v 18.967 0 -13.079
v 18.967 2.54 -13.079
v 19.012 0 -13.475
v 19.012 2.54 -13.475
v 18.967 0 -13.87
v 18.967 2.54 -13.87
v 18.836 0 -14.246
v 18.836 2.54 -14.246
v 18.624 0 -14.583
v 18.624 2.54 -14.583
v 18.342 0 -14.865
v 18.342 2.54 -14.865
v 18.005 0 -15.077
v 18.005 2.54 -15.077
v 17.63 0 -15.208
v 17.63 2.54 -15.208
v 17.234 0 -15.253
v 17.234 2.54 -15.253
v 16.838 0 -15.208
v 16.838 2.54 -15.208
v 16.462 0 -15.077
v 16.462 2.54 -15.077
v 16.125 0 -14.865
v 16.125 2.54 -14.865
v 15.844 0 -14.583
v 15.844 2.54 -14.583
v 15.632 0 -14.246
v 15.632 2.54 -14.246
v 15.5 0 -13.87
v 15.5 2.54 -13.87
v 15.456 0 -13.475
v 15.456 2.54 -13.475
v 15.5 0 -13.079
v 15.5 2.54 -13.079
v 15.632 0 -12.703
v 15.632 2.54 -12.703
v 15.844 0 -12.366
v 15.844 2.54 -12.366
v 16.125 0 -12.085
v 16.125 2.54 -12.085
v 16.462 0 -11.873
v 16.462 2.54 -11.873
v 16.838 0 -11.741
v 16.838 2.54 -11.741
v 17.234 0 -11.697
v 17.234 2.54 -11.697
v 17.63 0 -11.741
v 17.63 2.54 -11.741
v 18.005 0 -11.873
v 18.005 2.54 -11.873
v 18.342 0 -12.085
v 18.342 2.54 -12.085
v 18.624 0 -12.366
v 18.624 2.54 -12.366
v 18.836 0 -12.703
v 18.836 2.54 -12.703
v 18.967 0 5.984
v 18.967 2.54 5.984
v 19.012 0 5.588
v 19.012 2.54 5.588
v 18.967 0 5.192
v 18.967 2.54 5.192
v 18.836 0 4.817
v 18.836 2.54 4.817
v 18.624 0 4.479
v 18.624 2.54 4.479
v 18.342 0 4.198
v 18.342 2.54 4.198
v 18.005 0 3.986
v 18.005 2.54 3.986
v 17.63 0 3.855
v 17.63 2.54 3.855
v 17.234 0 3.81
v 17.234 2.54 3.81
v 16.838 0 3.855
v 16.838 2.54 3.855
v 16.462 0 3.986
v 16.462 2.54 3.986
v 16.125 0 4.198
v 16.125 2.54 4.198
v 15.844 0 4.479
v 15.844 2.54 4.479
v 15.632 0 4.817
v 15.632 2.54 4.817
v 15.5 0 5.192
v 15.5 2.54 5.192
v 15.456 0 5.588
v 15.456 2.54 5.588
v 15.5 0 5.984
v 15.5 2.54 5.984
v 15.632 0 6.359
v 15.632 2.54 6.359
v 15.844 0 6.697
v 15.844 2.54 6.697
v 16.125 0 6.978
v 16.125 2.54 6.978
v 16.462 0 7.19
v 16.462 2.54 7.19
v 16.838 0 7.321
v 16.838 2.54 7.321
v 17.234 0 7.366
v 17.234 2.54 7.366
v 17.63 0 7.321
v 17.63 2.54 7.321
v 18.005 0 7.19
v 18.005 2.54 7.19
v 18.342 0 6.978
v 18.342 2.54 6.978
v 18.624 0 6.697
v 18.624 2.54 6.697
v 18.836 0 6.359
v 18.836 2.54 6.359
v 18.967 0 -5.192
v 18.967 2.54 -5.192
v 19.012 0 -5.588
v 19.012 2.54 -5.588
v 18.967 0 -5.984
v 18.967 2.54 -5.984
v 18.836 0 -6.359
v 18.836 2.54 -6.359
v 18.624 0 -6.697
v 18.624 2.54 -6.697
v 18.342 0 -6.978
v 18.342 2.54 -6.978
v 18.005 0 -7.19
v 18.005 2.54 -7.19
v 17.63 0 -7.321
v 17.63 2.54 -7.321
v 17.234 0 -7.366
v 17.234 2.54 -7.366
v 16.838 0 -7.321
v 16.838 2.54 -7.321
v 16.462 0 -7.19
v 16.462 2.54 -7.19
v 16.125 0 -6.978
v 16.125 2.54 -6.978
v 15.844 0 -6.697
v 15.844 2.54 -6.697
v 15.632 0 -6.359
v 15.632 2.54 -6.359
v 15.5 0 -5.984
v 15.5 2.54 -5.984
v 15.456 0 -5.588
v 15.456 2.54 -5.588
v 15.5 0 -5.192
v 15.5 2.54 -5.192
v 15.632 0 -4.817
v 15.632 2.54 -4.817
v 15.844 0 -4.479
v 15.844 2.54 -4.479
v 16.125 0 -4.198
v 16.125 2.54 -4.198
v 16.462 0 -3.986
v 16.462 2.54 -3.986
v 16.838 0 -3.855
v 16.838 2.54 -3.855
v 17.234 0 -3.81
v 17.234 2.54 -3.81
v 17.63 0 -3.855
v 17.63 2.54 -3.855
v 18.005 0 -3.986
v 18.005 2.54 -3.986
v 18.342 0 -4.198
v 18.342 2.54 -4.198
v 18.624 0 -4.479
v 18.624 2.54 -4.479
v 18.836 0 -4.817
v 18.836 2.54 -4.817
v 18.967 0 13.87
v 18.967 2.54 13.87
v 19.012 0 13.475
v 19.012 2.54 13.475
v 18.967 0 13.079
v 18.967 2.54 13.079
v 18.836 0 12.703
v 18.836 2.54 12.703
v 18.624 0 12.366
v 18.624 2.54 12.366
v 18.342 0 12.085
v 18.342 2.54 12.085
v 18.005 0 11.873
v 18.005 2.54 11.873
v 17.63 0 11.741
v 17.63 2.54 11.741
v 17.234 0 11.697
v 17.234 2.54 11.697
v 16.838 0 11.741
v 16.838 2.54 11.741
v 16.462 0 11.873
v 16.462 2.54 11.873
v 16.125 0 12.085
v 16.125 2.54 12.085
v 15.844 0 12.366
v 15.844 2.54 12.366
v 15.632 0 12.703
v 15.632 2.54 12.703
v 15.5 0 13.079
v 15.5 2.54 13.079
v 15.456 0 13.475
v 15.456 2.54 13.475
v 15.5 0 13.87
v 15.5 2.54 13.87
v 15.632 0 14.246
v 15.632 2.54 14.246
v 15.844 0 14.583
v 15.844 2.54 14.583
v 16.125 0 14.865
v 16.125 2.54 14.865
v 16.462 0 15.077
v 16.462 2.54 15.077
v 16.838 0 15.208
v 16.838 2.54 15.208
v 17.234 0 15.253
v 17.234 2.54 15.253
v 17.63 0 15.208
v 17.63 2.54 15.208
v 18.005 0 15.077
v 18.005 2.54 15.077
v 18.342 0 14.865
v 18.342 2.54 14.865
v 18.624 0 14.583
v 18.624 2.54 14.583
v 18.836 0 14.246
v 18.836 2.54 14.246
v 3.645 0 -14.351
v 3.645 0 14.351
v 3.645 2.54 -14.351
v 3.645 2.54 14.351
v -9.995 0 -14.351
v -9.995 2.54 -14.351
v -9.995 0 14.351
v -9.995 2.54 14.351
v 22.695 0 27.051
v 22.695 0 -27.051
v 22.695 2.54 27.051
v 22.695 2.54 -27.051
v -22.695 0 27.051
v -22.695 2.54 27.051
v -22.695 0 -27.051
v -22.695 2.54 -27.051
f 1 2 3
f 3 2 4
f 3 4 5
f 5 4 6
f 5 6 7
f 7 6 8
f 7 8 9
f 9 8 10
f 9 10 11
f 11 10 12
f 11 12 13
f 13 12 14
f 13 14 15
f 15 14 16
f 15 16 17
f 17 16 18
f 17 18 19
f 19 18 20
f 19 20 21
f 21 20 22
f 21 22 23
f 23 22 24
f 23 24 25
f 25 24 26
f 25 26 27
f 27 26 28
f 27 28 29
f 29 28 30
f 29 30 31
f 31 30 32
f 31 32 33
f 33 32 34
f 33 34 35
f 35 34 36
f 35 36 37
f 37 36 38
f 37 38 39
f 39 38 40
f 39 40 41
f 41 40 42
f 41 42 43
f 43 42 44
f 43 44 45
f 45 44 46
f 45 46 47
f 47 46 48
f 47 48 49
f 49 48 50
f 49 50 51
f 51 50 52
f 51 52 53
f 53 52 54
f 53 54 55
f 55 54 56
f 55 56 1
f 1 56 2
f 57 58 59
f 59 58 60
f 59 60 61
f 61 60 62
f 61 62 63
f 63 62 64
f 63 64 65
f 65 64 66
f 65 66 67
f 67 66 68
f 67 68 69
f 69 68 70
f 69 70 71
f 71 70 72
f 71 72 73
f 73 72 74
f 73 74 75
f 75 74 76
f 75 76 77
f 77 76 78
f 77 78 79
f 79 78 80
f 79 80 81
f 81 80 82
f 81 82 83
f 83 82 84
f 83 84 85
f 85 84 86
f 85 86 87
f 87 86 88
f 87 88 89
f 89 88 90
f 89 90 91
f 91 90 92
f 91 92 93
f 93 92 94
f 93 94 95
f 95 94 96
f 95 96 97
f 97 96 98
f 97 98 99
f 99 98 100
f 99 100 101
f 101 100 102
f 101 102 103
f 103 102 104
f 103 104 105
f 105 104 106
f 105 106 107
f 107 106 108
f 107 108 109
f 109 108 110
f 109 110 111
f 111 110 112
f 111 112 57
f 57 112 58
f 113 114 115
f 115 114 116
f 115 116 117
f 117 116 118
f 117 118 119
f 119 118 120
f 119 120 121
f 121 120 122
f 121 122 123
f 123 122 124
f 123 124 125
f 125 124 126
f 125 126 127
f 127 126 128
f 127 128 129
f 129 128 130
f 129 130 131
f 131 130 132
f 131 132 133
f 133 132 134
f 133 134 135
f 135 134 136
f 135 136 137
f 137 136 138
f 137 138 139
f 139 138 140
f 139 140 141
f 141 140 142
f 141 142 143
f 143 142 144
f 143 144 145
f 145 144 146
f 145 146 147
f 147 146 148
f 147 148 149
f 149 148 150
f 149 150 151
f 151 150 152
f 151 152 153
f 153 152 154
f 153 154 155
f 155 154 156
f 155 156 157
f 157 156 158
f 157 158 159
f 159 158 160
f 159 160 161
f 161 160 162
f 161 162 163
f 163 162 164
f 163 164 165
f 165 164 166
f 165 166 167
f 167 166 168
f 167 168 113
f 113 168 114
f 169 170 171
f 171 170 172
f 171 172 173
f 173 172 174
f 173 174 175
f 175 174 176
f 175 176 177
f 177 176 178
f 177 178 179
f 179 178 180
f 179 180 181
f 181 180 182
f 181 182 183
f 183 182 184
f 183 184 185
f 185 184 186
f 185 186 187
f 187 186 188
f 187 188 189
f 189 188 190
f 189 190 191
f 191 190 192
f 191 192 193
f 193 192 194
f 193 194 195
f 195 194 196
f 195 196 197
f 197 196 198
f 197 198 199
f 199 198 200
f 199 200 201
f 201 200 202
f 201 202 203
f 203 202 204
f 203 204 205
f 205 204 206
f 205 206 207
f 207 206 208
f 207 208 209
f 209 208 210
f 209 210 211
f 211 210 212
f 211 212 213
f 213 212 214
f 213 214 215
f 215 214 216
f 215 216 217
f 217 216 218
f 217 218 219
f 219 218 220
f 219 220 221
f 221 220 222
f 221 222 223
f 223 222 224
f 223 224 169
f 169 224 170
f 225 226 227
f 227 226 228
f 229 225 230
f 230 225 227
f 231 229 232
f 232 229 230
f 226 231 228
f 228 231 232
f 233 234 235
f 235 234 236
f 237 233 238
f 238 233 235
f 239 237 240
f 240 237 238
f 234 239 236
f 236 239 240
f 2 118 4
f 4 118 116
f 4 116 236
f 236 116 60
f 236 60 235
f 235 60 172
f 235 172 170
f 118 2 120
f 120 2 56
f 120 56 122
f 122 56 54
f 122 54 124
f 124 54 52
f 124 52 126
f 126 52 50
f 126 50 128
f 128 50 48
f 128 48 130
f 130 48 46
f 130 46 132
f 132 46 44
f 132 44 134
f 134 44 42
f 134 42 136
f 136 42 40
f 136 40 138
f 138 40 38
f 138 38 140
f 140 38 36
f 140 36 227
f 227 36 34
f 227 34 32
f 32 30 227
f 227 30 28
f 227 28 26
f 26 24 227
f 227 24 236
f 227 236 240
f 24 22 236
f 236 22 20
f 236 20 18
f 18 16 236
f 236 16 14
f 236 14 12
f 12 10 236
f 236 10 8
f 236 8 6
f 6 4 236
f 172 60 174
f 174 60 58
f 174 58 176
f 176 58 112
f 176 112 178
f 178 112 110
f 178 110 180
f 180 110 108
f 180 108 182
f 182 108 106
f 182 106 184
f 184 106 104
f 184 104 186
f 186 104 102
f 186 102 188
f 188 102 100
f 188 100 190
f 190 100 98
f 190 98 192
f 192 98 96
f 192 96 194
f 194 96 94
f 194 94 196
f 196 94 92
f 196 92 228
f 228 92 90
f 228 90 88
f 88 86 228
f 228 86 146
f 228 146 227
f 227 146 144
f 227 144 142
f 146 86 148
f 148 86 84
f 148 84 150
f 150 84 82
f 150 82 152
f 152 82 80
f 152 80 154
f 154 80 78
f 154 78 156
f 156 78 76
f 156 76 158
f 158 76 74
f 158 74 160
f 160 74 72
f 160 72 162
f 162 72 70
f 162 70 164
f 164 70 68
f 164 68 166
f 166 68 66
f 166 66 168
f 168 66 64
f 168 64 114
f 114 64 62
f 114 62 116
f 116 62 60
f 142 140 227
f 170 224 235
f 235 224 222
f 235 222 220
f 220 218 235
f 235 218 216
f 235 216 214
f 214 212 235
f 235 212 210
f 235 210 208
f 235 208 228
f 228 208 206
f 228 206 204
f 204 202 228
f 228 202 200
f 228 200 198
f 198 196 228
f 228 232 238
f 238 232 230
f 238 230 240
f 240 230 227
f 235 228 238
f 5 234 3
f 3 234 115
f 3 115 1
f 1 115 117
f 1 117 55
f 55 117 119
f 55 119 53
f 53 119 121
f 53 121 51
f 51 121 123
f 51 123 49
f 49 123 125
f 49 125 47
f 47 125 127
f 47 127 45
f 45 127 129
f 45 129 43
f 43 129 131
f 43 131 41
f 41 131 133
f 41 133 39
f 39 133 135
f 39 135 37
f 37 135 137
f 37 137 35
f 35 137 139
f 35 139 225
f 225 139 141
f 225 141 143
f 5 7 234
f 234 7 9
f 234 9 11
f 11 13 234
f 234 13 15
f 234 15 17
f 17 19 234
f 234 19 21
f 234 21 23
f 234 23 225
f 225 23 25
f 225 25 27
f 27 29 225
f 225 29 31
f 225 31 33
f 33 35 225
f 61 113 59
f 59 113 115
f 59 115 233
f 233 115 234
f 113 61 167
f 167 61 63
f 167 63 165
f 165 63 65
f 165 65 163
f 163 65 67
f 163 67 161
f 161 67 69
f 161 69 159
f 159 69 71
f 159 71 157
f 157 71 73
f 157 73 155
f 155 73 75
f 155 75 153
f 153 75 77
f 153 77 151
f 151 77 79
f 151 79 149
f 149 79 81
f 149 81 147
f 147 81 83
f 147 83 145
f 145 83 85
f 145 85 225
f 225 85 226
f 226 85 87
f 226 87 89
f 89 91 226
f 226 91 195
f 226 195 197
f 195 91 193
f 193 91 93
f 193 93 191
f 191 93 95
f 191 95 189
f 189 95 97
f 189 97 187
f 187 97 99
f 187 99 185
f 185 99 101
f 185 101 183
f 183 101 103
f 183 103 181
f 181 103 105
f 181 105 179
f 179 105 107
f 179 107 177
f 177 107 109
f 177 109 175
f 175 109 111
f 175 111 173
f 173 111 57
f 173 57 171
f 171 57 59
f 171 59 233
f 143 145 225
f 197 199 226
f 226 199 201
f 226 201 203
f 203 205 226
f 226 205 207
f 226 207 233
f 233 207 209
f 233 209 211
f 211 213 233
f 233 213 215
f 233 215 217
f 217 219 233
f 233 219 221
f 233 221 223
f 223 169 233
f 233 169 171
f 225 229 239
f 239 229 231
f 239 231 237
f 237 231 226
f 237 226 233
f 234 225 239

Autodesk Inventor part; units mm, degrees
ref_plane "YZ Plane" through (0, 0, 0) normal (1, 0, 0) x (0, 1, 0)
ref_plane "XZ Plane" through (0, 0, 0) normal (0, 1, 0) x (-1, 0, 0)
ref_plane "XY Plane" through (0, 0, 0) normal (0, 0, 1) x (1, 0, 0)
sketch "Sketch1" plane through (0, 0, 0) normal (0, 1, 0) x (-1, 0, 0)
  line L0 (-22.6949, -27.051) -> (22.6949, -27.051)
  line L1 (22.6949, -27.051) -> (22.6949, 27.051)
  line L2 (22.6949, 27.051) -> (-22.6949, 27.051)
  line L3 (-22.6949, 27.051) -> (-22.6949, -27.051)
  line L4 (-22.6949, -27.051) -> (22.6949, 27.051) construction
  line L5 (22.6949, -27.051) -> (-22.6949, 27.051) construction
  point P0 (0, 0)
  dimension "d0" = 45.3898
  dimension "d1" = 54.102
extrude "Extrusion1" add sketch "Sketch1" along normal blind 2.54
sketch "Sketch2" plane through (0, 2.54, 0) normal (0, 1, 0) x (1, 0, 0)
  line L0 (-9.9949, 14.351) -> (3.6449, 14.351)
  line L1 (3.6449, 14.351) -> (3.6449, -14.351)
  line L2 (3.6449, -14.351) -> (-9.9949, -14.351)
  line L3 (-9.9949, -14.351) -> (-9.9949, 14.351)
  line L4 (22.6949, -27.051) -> (22.6949, 27.051) projected
  line L5 (22.6949, 27.051) -> (-22.6949, 27.051) projected
  point P0 (0, 0)
  dimension "d4" = 13.6398
  dimension "d5" = 28.702
  dimension "d6" = 19.05
  dimension "d7" = 12.7
extrude "Extrusion2" cut sketch "Sketch2" against normal through all
sketch "Sketch3" plane through (0, 2.54, 0) normal (0, 1, 0) x (1, 0, 0)
  circle A0 centre (17.2339, -5.588) radius 1.778
  line L0 (22.6949, -27.051) -> (22.6949, 27.051) projected
  circle A1 centre (17.2339, 5.588) radius 1.778
  circle A2 centre (17.2339, 13.4747) radius 1.778
  circle A3 centre (17.2339, -13.4747) radius 1.778
  line L1 (-22.6949, -27.051) -> (22.6949, -27.051) projected
  line L2 (22.6949, 27.051) -> (-22.6949, 27.051) projected
  point P0 (0, 0)
  dimension "d10" = 3.556
  dimension "d12" = 3.556
  dimension "d13" = 14.732
  dimension "d14" = 7.62
  dimension "d15" = 3.556
  dimension "d16" = 3.556
  dimension "d17" = 4.3307
  dimension "d18" = 4.3307
  dimension "d19" = 26.9494
  dimension "d20" = 13.5763
  dimension "d21" = 13.5763
extrude "Extrusion3" cut sketch "Sketch3" against normal through all
properties part number "switch holder"
